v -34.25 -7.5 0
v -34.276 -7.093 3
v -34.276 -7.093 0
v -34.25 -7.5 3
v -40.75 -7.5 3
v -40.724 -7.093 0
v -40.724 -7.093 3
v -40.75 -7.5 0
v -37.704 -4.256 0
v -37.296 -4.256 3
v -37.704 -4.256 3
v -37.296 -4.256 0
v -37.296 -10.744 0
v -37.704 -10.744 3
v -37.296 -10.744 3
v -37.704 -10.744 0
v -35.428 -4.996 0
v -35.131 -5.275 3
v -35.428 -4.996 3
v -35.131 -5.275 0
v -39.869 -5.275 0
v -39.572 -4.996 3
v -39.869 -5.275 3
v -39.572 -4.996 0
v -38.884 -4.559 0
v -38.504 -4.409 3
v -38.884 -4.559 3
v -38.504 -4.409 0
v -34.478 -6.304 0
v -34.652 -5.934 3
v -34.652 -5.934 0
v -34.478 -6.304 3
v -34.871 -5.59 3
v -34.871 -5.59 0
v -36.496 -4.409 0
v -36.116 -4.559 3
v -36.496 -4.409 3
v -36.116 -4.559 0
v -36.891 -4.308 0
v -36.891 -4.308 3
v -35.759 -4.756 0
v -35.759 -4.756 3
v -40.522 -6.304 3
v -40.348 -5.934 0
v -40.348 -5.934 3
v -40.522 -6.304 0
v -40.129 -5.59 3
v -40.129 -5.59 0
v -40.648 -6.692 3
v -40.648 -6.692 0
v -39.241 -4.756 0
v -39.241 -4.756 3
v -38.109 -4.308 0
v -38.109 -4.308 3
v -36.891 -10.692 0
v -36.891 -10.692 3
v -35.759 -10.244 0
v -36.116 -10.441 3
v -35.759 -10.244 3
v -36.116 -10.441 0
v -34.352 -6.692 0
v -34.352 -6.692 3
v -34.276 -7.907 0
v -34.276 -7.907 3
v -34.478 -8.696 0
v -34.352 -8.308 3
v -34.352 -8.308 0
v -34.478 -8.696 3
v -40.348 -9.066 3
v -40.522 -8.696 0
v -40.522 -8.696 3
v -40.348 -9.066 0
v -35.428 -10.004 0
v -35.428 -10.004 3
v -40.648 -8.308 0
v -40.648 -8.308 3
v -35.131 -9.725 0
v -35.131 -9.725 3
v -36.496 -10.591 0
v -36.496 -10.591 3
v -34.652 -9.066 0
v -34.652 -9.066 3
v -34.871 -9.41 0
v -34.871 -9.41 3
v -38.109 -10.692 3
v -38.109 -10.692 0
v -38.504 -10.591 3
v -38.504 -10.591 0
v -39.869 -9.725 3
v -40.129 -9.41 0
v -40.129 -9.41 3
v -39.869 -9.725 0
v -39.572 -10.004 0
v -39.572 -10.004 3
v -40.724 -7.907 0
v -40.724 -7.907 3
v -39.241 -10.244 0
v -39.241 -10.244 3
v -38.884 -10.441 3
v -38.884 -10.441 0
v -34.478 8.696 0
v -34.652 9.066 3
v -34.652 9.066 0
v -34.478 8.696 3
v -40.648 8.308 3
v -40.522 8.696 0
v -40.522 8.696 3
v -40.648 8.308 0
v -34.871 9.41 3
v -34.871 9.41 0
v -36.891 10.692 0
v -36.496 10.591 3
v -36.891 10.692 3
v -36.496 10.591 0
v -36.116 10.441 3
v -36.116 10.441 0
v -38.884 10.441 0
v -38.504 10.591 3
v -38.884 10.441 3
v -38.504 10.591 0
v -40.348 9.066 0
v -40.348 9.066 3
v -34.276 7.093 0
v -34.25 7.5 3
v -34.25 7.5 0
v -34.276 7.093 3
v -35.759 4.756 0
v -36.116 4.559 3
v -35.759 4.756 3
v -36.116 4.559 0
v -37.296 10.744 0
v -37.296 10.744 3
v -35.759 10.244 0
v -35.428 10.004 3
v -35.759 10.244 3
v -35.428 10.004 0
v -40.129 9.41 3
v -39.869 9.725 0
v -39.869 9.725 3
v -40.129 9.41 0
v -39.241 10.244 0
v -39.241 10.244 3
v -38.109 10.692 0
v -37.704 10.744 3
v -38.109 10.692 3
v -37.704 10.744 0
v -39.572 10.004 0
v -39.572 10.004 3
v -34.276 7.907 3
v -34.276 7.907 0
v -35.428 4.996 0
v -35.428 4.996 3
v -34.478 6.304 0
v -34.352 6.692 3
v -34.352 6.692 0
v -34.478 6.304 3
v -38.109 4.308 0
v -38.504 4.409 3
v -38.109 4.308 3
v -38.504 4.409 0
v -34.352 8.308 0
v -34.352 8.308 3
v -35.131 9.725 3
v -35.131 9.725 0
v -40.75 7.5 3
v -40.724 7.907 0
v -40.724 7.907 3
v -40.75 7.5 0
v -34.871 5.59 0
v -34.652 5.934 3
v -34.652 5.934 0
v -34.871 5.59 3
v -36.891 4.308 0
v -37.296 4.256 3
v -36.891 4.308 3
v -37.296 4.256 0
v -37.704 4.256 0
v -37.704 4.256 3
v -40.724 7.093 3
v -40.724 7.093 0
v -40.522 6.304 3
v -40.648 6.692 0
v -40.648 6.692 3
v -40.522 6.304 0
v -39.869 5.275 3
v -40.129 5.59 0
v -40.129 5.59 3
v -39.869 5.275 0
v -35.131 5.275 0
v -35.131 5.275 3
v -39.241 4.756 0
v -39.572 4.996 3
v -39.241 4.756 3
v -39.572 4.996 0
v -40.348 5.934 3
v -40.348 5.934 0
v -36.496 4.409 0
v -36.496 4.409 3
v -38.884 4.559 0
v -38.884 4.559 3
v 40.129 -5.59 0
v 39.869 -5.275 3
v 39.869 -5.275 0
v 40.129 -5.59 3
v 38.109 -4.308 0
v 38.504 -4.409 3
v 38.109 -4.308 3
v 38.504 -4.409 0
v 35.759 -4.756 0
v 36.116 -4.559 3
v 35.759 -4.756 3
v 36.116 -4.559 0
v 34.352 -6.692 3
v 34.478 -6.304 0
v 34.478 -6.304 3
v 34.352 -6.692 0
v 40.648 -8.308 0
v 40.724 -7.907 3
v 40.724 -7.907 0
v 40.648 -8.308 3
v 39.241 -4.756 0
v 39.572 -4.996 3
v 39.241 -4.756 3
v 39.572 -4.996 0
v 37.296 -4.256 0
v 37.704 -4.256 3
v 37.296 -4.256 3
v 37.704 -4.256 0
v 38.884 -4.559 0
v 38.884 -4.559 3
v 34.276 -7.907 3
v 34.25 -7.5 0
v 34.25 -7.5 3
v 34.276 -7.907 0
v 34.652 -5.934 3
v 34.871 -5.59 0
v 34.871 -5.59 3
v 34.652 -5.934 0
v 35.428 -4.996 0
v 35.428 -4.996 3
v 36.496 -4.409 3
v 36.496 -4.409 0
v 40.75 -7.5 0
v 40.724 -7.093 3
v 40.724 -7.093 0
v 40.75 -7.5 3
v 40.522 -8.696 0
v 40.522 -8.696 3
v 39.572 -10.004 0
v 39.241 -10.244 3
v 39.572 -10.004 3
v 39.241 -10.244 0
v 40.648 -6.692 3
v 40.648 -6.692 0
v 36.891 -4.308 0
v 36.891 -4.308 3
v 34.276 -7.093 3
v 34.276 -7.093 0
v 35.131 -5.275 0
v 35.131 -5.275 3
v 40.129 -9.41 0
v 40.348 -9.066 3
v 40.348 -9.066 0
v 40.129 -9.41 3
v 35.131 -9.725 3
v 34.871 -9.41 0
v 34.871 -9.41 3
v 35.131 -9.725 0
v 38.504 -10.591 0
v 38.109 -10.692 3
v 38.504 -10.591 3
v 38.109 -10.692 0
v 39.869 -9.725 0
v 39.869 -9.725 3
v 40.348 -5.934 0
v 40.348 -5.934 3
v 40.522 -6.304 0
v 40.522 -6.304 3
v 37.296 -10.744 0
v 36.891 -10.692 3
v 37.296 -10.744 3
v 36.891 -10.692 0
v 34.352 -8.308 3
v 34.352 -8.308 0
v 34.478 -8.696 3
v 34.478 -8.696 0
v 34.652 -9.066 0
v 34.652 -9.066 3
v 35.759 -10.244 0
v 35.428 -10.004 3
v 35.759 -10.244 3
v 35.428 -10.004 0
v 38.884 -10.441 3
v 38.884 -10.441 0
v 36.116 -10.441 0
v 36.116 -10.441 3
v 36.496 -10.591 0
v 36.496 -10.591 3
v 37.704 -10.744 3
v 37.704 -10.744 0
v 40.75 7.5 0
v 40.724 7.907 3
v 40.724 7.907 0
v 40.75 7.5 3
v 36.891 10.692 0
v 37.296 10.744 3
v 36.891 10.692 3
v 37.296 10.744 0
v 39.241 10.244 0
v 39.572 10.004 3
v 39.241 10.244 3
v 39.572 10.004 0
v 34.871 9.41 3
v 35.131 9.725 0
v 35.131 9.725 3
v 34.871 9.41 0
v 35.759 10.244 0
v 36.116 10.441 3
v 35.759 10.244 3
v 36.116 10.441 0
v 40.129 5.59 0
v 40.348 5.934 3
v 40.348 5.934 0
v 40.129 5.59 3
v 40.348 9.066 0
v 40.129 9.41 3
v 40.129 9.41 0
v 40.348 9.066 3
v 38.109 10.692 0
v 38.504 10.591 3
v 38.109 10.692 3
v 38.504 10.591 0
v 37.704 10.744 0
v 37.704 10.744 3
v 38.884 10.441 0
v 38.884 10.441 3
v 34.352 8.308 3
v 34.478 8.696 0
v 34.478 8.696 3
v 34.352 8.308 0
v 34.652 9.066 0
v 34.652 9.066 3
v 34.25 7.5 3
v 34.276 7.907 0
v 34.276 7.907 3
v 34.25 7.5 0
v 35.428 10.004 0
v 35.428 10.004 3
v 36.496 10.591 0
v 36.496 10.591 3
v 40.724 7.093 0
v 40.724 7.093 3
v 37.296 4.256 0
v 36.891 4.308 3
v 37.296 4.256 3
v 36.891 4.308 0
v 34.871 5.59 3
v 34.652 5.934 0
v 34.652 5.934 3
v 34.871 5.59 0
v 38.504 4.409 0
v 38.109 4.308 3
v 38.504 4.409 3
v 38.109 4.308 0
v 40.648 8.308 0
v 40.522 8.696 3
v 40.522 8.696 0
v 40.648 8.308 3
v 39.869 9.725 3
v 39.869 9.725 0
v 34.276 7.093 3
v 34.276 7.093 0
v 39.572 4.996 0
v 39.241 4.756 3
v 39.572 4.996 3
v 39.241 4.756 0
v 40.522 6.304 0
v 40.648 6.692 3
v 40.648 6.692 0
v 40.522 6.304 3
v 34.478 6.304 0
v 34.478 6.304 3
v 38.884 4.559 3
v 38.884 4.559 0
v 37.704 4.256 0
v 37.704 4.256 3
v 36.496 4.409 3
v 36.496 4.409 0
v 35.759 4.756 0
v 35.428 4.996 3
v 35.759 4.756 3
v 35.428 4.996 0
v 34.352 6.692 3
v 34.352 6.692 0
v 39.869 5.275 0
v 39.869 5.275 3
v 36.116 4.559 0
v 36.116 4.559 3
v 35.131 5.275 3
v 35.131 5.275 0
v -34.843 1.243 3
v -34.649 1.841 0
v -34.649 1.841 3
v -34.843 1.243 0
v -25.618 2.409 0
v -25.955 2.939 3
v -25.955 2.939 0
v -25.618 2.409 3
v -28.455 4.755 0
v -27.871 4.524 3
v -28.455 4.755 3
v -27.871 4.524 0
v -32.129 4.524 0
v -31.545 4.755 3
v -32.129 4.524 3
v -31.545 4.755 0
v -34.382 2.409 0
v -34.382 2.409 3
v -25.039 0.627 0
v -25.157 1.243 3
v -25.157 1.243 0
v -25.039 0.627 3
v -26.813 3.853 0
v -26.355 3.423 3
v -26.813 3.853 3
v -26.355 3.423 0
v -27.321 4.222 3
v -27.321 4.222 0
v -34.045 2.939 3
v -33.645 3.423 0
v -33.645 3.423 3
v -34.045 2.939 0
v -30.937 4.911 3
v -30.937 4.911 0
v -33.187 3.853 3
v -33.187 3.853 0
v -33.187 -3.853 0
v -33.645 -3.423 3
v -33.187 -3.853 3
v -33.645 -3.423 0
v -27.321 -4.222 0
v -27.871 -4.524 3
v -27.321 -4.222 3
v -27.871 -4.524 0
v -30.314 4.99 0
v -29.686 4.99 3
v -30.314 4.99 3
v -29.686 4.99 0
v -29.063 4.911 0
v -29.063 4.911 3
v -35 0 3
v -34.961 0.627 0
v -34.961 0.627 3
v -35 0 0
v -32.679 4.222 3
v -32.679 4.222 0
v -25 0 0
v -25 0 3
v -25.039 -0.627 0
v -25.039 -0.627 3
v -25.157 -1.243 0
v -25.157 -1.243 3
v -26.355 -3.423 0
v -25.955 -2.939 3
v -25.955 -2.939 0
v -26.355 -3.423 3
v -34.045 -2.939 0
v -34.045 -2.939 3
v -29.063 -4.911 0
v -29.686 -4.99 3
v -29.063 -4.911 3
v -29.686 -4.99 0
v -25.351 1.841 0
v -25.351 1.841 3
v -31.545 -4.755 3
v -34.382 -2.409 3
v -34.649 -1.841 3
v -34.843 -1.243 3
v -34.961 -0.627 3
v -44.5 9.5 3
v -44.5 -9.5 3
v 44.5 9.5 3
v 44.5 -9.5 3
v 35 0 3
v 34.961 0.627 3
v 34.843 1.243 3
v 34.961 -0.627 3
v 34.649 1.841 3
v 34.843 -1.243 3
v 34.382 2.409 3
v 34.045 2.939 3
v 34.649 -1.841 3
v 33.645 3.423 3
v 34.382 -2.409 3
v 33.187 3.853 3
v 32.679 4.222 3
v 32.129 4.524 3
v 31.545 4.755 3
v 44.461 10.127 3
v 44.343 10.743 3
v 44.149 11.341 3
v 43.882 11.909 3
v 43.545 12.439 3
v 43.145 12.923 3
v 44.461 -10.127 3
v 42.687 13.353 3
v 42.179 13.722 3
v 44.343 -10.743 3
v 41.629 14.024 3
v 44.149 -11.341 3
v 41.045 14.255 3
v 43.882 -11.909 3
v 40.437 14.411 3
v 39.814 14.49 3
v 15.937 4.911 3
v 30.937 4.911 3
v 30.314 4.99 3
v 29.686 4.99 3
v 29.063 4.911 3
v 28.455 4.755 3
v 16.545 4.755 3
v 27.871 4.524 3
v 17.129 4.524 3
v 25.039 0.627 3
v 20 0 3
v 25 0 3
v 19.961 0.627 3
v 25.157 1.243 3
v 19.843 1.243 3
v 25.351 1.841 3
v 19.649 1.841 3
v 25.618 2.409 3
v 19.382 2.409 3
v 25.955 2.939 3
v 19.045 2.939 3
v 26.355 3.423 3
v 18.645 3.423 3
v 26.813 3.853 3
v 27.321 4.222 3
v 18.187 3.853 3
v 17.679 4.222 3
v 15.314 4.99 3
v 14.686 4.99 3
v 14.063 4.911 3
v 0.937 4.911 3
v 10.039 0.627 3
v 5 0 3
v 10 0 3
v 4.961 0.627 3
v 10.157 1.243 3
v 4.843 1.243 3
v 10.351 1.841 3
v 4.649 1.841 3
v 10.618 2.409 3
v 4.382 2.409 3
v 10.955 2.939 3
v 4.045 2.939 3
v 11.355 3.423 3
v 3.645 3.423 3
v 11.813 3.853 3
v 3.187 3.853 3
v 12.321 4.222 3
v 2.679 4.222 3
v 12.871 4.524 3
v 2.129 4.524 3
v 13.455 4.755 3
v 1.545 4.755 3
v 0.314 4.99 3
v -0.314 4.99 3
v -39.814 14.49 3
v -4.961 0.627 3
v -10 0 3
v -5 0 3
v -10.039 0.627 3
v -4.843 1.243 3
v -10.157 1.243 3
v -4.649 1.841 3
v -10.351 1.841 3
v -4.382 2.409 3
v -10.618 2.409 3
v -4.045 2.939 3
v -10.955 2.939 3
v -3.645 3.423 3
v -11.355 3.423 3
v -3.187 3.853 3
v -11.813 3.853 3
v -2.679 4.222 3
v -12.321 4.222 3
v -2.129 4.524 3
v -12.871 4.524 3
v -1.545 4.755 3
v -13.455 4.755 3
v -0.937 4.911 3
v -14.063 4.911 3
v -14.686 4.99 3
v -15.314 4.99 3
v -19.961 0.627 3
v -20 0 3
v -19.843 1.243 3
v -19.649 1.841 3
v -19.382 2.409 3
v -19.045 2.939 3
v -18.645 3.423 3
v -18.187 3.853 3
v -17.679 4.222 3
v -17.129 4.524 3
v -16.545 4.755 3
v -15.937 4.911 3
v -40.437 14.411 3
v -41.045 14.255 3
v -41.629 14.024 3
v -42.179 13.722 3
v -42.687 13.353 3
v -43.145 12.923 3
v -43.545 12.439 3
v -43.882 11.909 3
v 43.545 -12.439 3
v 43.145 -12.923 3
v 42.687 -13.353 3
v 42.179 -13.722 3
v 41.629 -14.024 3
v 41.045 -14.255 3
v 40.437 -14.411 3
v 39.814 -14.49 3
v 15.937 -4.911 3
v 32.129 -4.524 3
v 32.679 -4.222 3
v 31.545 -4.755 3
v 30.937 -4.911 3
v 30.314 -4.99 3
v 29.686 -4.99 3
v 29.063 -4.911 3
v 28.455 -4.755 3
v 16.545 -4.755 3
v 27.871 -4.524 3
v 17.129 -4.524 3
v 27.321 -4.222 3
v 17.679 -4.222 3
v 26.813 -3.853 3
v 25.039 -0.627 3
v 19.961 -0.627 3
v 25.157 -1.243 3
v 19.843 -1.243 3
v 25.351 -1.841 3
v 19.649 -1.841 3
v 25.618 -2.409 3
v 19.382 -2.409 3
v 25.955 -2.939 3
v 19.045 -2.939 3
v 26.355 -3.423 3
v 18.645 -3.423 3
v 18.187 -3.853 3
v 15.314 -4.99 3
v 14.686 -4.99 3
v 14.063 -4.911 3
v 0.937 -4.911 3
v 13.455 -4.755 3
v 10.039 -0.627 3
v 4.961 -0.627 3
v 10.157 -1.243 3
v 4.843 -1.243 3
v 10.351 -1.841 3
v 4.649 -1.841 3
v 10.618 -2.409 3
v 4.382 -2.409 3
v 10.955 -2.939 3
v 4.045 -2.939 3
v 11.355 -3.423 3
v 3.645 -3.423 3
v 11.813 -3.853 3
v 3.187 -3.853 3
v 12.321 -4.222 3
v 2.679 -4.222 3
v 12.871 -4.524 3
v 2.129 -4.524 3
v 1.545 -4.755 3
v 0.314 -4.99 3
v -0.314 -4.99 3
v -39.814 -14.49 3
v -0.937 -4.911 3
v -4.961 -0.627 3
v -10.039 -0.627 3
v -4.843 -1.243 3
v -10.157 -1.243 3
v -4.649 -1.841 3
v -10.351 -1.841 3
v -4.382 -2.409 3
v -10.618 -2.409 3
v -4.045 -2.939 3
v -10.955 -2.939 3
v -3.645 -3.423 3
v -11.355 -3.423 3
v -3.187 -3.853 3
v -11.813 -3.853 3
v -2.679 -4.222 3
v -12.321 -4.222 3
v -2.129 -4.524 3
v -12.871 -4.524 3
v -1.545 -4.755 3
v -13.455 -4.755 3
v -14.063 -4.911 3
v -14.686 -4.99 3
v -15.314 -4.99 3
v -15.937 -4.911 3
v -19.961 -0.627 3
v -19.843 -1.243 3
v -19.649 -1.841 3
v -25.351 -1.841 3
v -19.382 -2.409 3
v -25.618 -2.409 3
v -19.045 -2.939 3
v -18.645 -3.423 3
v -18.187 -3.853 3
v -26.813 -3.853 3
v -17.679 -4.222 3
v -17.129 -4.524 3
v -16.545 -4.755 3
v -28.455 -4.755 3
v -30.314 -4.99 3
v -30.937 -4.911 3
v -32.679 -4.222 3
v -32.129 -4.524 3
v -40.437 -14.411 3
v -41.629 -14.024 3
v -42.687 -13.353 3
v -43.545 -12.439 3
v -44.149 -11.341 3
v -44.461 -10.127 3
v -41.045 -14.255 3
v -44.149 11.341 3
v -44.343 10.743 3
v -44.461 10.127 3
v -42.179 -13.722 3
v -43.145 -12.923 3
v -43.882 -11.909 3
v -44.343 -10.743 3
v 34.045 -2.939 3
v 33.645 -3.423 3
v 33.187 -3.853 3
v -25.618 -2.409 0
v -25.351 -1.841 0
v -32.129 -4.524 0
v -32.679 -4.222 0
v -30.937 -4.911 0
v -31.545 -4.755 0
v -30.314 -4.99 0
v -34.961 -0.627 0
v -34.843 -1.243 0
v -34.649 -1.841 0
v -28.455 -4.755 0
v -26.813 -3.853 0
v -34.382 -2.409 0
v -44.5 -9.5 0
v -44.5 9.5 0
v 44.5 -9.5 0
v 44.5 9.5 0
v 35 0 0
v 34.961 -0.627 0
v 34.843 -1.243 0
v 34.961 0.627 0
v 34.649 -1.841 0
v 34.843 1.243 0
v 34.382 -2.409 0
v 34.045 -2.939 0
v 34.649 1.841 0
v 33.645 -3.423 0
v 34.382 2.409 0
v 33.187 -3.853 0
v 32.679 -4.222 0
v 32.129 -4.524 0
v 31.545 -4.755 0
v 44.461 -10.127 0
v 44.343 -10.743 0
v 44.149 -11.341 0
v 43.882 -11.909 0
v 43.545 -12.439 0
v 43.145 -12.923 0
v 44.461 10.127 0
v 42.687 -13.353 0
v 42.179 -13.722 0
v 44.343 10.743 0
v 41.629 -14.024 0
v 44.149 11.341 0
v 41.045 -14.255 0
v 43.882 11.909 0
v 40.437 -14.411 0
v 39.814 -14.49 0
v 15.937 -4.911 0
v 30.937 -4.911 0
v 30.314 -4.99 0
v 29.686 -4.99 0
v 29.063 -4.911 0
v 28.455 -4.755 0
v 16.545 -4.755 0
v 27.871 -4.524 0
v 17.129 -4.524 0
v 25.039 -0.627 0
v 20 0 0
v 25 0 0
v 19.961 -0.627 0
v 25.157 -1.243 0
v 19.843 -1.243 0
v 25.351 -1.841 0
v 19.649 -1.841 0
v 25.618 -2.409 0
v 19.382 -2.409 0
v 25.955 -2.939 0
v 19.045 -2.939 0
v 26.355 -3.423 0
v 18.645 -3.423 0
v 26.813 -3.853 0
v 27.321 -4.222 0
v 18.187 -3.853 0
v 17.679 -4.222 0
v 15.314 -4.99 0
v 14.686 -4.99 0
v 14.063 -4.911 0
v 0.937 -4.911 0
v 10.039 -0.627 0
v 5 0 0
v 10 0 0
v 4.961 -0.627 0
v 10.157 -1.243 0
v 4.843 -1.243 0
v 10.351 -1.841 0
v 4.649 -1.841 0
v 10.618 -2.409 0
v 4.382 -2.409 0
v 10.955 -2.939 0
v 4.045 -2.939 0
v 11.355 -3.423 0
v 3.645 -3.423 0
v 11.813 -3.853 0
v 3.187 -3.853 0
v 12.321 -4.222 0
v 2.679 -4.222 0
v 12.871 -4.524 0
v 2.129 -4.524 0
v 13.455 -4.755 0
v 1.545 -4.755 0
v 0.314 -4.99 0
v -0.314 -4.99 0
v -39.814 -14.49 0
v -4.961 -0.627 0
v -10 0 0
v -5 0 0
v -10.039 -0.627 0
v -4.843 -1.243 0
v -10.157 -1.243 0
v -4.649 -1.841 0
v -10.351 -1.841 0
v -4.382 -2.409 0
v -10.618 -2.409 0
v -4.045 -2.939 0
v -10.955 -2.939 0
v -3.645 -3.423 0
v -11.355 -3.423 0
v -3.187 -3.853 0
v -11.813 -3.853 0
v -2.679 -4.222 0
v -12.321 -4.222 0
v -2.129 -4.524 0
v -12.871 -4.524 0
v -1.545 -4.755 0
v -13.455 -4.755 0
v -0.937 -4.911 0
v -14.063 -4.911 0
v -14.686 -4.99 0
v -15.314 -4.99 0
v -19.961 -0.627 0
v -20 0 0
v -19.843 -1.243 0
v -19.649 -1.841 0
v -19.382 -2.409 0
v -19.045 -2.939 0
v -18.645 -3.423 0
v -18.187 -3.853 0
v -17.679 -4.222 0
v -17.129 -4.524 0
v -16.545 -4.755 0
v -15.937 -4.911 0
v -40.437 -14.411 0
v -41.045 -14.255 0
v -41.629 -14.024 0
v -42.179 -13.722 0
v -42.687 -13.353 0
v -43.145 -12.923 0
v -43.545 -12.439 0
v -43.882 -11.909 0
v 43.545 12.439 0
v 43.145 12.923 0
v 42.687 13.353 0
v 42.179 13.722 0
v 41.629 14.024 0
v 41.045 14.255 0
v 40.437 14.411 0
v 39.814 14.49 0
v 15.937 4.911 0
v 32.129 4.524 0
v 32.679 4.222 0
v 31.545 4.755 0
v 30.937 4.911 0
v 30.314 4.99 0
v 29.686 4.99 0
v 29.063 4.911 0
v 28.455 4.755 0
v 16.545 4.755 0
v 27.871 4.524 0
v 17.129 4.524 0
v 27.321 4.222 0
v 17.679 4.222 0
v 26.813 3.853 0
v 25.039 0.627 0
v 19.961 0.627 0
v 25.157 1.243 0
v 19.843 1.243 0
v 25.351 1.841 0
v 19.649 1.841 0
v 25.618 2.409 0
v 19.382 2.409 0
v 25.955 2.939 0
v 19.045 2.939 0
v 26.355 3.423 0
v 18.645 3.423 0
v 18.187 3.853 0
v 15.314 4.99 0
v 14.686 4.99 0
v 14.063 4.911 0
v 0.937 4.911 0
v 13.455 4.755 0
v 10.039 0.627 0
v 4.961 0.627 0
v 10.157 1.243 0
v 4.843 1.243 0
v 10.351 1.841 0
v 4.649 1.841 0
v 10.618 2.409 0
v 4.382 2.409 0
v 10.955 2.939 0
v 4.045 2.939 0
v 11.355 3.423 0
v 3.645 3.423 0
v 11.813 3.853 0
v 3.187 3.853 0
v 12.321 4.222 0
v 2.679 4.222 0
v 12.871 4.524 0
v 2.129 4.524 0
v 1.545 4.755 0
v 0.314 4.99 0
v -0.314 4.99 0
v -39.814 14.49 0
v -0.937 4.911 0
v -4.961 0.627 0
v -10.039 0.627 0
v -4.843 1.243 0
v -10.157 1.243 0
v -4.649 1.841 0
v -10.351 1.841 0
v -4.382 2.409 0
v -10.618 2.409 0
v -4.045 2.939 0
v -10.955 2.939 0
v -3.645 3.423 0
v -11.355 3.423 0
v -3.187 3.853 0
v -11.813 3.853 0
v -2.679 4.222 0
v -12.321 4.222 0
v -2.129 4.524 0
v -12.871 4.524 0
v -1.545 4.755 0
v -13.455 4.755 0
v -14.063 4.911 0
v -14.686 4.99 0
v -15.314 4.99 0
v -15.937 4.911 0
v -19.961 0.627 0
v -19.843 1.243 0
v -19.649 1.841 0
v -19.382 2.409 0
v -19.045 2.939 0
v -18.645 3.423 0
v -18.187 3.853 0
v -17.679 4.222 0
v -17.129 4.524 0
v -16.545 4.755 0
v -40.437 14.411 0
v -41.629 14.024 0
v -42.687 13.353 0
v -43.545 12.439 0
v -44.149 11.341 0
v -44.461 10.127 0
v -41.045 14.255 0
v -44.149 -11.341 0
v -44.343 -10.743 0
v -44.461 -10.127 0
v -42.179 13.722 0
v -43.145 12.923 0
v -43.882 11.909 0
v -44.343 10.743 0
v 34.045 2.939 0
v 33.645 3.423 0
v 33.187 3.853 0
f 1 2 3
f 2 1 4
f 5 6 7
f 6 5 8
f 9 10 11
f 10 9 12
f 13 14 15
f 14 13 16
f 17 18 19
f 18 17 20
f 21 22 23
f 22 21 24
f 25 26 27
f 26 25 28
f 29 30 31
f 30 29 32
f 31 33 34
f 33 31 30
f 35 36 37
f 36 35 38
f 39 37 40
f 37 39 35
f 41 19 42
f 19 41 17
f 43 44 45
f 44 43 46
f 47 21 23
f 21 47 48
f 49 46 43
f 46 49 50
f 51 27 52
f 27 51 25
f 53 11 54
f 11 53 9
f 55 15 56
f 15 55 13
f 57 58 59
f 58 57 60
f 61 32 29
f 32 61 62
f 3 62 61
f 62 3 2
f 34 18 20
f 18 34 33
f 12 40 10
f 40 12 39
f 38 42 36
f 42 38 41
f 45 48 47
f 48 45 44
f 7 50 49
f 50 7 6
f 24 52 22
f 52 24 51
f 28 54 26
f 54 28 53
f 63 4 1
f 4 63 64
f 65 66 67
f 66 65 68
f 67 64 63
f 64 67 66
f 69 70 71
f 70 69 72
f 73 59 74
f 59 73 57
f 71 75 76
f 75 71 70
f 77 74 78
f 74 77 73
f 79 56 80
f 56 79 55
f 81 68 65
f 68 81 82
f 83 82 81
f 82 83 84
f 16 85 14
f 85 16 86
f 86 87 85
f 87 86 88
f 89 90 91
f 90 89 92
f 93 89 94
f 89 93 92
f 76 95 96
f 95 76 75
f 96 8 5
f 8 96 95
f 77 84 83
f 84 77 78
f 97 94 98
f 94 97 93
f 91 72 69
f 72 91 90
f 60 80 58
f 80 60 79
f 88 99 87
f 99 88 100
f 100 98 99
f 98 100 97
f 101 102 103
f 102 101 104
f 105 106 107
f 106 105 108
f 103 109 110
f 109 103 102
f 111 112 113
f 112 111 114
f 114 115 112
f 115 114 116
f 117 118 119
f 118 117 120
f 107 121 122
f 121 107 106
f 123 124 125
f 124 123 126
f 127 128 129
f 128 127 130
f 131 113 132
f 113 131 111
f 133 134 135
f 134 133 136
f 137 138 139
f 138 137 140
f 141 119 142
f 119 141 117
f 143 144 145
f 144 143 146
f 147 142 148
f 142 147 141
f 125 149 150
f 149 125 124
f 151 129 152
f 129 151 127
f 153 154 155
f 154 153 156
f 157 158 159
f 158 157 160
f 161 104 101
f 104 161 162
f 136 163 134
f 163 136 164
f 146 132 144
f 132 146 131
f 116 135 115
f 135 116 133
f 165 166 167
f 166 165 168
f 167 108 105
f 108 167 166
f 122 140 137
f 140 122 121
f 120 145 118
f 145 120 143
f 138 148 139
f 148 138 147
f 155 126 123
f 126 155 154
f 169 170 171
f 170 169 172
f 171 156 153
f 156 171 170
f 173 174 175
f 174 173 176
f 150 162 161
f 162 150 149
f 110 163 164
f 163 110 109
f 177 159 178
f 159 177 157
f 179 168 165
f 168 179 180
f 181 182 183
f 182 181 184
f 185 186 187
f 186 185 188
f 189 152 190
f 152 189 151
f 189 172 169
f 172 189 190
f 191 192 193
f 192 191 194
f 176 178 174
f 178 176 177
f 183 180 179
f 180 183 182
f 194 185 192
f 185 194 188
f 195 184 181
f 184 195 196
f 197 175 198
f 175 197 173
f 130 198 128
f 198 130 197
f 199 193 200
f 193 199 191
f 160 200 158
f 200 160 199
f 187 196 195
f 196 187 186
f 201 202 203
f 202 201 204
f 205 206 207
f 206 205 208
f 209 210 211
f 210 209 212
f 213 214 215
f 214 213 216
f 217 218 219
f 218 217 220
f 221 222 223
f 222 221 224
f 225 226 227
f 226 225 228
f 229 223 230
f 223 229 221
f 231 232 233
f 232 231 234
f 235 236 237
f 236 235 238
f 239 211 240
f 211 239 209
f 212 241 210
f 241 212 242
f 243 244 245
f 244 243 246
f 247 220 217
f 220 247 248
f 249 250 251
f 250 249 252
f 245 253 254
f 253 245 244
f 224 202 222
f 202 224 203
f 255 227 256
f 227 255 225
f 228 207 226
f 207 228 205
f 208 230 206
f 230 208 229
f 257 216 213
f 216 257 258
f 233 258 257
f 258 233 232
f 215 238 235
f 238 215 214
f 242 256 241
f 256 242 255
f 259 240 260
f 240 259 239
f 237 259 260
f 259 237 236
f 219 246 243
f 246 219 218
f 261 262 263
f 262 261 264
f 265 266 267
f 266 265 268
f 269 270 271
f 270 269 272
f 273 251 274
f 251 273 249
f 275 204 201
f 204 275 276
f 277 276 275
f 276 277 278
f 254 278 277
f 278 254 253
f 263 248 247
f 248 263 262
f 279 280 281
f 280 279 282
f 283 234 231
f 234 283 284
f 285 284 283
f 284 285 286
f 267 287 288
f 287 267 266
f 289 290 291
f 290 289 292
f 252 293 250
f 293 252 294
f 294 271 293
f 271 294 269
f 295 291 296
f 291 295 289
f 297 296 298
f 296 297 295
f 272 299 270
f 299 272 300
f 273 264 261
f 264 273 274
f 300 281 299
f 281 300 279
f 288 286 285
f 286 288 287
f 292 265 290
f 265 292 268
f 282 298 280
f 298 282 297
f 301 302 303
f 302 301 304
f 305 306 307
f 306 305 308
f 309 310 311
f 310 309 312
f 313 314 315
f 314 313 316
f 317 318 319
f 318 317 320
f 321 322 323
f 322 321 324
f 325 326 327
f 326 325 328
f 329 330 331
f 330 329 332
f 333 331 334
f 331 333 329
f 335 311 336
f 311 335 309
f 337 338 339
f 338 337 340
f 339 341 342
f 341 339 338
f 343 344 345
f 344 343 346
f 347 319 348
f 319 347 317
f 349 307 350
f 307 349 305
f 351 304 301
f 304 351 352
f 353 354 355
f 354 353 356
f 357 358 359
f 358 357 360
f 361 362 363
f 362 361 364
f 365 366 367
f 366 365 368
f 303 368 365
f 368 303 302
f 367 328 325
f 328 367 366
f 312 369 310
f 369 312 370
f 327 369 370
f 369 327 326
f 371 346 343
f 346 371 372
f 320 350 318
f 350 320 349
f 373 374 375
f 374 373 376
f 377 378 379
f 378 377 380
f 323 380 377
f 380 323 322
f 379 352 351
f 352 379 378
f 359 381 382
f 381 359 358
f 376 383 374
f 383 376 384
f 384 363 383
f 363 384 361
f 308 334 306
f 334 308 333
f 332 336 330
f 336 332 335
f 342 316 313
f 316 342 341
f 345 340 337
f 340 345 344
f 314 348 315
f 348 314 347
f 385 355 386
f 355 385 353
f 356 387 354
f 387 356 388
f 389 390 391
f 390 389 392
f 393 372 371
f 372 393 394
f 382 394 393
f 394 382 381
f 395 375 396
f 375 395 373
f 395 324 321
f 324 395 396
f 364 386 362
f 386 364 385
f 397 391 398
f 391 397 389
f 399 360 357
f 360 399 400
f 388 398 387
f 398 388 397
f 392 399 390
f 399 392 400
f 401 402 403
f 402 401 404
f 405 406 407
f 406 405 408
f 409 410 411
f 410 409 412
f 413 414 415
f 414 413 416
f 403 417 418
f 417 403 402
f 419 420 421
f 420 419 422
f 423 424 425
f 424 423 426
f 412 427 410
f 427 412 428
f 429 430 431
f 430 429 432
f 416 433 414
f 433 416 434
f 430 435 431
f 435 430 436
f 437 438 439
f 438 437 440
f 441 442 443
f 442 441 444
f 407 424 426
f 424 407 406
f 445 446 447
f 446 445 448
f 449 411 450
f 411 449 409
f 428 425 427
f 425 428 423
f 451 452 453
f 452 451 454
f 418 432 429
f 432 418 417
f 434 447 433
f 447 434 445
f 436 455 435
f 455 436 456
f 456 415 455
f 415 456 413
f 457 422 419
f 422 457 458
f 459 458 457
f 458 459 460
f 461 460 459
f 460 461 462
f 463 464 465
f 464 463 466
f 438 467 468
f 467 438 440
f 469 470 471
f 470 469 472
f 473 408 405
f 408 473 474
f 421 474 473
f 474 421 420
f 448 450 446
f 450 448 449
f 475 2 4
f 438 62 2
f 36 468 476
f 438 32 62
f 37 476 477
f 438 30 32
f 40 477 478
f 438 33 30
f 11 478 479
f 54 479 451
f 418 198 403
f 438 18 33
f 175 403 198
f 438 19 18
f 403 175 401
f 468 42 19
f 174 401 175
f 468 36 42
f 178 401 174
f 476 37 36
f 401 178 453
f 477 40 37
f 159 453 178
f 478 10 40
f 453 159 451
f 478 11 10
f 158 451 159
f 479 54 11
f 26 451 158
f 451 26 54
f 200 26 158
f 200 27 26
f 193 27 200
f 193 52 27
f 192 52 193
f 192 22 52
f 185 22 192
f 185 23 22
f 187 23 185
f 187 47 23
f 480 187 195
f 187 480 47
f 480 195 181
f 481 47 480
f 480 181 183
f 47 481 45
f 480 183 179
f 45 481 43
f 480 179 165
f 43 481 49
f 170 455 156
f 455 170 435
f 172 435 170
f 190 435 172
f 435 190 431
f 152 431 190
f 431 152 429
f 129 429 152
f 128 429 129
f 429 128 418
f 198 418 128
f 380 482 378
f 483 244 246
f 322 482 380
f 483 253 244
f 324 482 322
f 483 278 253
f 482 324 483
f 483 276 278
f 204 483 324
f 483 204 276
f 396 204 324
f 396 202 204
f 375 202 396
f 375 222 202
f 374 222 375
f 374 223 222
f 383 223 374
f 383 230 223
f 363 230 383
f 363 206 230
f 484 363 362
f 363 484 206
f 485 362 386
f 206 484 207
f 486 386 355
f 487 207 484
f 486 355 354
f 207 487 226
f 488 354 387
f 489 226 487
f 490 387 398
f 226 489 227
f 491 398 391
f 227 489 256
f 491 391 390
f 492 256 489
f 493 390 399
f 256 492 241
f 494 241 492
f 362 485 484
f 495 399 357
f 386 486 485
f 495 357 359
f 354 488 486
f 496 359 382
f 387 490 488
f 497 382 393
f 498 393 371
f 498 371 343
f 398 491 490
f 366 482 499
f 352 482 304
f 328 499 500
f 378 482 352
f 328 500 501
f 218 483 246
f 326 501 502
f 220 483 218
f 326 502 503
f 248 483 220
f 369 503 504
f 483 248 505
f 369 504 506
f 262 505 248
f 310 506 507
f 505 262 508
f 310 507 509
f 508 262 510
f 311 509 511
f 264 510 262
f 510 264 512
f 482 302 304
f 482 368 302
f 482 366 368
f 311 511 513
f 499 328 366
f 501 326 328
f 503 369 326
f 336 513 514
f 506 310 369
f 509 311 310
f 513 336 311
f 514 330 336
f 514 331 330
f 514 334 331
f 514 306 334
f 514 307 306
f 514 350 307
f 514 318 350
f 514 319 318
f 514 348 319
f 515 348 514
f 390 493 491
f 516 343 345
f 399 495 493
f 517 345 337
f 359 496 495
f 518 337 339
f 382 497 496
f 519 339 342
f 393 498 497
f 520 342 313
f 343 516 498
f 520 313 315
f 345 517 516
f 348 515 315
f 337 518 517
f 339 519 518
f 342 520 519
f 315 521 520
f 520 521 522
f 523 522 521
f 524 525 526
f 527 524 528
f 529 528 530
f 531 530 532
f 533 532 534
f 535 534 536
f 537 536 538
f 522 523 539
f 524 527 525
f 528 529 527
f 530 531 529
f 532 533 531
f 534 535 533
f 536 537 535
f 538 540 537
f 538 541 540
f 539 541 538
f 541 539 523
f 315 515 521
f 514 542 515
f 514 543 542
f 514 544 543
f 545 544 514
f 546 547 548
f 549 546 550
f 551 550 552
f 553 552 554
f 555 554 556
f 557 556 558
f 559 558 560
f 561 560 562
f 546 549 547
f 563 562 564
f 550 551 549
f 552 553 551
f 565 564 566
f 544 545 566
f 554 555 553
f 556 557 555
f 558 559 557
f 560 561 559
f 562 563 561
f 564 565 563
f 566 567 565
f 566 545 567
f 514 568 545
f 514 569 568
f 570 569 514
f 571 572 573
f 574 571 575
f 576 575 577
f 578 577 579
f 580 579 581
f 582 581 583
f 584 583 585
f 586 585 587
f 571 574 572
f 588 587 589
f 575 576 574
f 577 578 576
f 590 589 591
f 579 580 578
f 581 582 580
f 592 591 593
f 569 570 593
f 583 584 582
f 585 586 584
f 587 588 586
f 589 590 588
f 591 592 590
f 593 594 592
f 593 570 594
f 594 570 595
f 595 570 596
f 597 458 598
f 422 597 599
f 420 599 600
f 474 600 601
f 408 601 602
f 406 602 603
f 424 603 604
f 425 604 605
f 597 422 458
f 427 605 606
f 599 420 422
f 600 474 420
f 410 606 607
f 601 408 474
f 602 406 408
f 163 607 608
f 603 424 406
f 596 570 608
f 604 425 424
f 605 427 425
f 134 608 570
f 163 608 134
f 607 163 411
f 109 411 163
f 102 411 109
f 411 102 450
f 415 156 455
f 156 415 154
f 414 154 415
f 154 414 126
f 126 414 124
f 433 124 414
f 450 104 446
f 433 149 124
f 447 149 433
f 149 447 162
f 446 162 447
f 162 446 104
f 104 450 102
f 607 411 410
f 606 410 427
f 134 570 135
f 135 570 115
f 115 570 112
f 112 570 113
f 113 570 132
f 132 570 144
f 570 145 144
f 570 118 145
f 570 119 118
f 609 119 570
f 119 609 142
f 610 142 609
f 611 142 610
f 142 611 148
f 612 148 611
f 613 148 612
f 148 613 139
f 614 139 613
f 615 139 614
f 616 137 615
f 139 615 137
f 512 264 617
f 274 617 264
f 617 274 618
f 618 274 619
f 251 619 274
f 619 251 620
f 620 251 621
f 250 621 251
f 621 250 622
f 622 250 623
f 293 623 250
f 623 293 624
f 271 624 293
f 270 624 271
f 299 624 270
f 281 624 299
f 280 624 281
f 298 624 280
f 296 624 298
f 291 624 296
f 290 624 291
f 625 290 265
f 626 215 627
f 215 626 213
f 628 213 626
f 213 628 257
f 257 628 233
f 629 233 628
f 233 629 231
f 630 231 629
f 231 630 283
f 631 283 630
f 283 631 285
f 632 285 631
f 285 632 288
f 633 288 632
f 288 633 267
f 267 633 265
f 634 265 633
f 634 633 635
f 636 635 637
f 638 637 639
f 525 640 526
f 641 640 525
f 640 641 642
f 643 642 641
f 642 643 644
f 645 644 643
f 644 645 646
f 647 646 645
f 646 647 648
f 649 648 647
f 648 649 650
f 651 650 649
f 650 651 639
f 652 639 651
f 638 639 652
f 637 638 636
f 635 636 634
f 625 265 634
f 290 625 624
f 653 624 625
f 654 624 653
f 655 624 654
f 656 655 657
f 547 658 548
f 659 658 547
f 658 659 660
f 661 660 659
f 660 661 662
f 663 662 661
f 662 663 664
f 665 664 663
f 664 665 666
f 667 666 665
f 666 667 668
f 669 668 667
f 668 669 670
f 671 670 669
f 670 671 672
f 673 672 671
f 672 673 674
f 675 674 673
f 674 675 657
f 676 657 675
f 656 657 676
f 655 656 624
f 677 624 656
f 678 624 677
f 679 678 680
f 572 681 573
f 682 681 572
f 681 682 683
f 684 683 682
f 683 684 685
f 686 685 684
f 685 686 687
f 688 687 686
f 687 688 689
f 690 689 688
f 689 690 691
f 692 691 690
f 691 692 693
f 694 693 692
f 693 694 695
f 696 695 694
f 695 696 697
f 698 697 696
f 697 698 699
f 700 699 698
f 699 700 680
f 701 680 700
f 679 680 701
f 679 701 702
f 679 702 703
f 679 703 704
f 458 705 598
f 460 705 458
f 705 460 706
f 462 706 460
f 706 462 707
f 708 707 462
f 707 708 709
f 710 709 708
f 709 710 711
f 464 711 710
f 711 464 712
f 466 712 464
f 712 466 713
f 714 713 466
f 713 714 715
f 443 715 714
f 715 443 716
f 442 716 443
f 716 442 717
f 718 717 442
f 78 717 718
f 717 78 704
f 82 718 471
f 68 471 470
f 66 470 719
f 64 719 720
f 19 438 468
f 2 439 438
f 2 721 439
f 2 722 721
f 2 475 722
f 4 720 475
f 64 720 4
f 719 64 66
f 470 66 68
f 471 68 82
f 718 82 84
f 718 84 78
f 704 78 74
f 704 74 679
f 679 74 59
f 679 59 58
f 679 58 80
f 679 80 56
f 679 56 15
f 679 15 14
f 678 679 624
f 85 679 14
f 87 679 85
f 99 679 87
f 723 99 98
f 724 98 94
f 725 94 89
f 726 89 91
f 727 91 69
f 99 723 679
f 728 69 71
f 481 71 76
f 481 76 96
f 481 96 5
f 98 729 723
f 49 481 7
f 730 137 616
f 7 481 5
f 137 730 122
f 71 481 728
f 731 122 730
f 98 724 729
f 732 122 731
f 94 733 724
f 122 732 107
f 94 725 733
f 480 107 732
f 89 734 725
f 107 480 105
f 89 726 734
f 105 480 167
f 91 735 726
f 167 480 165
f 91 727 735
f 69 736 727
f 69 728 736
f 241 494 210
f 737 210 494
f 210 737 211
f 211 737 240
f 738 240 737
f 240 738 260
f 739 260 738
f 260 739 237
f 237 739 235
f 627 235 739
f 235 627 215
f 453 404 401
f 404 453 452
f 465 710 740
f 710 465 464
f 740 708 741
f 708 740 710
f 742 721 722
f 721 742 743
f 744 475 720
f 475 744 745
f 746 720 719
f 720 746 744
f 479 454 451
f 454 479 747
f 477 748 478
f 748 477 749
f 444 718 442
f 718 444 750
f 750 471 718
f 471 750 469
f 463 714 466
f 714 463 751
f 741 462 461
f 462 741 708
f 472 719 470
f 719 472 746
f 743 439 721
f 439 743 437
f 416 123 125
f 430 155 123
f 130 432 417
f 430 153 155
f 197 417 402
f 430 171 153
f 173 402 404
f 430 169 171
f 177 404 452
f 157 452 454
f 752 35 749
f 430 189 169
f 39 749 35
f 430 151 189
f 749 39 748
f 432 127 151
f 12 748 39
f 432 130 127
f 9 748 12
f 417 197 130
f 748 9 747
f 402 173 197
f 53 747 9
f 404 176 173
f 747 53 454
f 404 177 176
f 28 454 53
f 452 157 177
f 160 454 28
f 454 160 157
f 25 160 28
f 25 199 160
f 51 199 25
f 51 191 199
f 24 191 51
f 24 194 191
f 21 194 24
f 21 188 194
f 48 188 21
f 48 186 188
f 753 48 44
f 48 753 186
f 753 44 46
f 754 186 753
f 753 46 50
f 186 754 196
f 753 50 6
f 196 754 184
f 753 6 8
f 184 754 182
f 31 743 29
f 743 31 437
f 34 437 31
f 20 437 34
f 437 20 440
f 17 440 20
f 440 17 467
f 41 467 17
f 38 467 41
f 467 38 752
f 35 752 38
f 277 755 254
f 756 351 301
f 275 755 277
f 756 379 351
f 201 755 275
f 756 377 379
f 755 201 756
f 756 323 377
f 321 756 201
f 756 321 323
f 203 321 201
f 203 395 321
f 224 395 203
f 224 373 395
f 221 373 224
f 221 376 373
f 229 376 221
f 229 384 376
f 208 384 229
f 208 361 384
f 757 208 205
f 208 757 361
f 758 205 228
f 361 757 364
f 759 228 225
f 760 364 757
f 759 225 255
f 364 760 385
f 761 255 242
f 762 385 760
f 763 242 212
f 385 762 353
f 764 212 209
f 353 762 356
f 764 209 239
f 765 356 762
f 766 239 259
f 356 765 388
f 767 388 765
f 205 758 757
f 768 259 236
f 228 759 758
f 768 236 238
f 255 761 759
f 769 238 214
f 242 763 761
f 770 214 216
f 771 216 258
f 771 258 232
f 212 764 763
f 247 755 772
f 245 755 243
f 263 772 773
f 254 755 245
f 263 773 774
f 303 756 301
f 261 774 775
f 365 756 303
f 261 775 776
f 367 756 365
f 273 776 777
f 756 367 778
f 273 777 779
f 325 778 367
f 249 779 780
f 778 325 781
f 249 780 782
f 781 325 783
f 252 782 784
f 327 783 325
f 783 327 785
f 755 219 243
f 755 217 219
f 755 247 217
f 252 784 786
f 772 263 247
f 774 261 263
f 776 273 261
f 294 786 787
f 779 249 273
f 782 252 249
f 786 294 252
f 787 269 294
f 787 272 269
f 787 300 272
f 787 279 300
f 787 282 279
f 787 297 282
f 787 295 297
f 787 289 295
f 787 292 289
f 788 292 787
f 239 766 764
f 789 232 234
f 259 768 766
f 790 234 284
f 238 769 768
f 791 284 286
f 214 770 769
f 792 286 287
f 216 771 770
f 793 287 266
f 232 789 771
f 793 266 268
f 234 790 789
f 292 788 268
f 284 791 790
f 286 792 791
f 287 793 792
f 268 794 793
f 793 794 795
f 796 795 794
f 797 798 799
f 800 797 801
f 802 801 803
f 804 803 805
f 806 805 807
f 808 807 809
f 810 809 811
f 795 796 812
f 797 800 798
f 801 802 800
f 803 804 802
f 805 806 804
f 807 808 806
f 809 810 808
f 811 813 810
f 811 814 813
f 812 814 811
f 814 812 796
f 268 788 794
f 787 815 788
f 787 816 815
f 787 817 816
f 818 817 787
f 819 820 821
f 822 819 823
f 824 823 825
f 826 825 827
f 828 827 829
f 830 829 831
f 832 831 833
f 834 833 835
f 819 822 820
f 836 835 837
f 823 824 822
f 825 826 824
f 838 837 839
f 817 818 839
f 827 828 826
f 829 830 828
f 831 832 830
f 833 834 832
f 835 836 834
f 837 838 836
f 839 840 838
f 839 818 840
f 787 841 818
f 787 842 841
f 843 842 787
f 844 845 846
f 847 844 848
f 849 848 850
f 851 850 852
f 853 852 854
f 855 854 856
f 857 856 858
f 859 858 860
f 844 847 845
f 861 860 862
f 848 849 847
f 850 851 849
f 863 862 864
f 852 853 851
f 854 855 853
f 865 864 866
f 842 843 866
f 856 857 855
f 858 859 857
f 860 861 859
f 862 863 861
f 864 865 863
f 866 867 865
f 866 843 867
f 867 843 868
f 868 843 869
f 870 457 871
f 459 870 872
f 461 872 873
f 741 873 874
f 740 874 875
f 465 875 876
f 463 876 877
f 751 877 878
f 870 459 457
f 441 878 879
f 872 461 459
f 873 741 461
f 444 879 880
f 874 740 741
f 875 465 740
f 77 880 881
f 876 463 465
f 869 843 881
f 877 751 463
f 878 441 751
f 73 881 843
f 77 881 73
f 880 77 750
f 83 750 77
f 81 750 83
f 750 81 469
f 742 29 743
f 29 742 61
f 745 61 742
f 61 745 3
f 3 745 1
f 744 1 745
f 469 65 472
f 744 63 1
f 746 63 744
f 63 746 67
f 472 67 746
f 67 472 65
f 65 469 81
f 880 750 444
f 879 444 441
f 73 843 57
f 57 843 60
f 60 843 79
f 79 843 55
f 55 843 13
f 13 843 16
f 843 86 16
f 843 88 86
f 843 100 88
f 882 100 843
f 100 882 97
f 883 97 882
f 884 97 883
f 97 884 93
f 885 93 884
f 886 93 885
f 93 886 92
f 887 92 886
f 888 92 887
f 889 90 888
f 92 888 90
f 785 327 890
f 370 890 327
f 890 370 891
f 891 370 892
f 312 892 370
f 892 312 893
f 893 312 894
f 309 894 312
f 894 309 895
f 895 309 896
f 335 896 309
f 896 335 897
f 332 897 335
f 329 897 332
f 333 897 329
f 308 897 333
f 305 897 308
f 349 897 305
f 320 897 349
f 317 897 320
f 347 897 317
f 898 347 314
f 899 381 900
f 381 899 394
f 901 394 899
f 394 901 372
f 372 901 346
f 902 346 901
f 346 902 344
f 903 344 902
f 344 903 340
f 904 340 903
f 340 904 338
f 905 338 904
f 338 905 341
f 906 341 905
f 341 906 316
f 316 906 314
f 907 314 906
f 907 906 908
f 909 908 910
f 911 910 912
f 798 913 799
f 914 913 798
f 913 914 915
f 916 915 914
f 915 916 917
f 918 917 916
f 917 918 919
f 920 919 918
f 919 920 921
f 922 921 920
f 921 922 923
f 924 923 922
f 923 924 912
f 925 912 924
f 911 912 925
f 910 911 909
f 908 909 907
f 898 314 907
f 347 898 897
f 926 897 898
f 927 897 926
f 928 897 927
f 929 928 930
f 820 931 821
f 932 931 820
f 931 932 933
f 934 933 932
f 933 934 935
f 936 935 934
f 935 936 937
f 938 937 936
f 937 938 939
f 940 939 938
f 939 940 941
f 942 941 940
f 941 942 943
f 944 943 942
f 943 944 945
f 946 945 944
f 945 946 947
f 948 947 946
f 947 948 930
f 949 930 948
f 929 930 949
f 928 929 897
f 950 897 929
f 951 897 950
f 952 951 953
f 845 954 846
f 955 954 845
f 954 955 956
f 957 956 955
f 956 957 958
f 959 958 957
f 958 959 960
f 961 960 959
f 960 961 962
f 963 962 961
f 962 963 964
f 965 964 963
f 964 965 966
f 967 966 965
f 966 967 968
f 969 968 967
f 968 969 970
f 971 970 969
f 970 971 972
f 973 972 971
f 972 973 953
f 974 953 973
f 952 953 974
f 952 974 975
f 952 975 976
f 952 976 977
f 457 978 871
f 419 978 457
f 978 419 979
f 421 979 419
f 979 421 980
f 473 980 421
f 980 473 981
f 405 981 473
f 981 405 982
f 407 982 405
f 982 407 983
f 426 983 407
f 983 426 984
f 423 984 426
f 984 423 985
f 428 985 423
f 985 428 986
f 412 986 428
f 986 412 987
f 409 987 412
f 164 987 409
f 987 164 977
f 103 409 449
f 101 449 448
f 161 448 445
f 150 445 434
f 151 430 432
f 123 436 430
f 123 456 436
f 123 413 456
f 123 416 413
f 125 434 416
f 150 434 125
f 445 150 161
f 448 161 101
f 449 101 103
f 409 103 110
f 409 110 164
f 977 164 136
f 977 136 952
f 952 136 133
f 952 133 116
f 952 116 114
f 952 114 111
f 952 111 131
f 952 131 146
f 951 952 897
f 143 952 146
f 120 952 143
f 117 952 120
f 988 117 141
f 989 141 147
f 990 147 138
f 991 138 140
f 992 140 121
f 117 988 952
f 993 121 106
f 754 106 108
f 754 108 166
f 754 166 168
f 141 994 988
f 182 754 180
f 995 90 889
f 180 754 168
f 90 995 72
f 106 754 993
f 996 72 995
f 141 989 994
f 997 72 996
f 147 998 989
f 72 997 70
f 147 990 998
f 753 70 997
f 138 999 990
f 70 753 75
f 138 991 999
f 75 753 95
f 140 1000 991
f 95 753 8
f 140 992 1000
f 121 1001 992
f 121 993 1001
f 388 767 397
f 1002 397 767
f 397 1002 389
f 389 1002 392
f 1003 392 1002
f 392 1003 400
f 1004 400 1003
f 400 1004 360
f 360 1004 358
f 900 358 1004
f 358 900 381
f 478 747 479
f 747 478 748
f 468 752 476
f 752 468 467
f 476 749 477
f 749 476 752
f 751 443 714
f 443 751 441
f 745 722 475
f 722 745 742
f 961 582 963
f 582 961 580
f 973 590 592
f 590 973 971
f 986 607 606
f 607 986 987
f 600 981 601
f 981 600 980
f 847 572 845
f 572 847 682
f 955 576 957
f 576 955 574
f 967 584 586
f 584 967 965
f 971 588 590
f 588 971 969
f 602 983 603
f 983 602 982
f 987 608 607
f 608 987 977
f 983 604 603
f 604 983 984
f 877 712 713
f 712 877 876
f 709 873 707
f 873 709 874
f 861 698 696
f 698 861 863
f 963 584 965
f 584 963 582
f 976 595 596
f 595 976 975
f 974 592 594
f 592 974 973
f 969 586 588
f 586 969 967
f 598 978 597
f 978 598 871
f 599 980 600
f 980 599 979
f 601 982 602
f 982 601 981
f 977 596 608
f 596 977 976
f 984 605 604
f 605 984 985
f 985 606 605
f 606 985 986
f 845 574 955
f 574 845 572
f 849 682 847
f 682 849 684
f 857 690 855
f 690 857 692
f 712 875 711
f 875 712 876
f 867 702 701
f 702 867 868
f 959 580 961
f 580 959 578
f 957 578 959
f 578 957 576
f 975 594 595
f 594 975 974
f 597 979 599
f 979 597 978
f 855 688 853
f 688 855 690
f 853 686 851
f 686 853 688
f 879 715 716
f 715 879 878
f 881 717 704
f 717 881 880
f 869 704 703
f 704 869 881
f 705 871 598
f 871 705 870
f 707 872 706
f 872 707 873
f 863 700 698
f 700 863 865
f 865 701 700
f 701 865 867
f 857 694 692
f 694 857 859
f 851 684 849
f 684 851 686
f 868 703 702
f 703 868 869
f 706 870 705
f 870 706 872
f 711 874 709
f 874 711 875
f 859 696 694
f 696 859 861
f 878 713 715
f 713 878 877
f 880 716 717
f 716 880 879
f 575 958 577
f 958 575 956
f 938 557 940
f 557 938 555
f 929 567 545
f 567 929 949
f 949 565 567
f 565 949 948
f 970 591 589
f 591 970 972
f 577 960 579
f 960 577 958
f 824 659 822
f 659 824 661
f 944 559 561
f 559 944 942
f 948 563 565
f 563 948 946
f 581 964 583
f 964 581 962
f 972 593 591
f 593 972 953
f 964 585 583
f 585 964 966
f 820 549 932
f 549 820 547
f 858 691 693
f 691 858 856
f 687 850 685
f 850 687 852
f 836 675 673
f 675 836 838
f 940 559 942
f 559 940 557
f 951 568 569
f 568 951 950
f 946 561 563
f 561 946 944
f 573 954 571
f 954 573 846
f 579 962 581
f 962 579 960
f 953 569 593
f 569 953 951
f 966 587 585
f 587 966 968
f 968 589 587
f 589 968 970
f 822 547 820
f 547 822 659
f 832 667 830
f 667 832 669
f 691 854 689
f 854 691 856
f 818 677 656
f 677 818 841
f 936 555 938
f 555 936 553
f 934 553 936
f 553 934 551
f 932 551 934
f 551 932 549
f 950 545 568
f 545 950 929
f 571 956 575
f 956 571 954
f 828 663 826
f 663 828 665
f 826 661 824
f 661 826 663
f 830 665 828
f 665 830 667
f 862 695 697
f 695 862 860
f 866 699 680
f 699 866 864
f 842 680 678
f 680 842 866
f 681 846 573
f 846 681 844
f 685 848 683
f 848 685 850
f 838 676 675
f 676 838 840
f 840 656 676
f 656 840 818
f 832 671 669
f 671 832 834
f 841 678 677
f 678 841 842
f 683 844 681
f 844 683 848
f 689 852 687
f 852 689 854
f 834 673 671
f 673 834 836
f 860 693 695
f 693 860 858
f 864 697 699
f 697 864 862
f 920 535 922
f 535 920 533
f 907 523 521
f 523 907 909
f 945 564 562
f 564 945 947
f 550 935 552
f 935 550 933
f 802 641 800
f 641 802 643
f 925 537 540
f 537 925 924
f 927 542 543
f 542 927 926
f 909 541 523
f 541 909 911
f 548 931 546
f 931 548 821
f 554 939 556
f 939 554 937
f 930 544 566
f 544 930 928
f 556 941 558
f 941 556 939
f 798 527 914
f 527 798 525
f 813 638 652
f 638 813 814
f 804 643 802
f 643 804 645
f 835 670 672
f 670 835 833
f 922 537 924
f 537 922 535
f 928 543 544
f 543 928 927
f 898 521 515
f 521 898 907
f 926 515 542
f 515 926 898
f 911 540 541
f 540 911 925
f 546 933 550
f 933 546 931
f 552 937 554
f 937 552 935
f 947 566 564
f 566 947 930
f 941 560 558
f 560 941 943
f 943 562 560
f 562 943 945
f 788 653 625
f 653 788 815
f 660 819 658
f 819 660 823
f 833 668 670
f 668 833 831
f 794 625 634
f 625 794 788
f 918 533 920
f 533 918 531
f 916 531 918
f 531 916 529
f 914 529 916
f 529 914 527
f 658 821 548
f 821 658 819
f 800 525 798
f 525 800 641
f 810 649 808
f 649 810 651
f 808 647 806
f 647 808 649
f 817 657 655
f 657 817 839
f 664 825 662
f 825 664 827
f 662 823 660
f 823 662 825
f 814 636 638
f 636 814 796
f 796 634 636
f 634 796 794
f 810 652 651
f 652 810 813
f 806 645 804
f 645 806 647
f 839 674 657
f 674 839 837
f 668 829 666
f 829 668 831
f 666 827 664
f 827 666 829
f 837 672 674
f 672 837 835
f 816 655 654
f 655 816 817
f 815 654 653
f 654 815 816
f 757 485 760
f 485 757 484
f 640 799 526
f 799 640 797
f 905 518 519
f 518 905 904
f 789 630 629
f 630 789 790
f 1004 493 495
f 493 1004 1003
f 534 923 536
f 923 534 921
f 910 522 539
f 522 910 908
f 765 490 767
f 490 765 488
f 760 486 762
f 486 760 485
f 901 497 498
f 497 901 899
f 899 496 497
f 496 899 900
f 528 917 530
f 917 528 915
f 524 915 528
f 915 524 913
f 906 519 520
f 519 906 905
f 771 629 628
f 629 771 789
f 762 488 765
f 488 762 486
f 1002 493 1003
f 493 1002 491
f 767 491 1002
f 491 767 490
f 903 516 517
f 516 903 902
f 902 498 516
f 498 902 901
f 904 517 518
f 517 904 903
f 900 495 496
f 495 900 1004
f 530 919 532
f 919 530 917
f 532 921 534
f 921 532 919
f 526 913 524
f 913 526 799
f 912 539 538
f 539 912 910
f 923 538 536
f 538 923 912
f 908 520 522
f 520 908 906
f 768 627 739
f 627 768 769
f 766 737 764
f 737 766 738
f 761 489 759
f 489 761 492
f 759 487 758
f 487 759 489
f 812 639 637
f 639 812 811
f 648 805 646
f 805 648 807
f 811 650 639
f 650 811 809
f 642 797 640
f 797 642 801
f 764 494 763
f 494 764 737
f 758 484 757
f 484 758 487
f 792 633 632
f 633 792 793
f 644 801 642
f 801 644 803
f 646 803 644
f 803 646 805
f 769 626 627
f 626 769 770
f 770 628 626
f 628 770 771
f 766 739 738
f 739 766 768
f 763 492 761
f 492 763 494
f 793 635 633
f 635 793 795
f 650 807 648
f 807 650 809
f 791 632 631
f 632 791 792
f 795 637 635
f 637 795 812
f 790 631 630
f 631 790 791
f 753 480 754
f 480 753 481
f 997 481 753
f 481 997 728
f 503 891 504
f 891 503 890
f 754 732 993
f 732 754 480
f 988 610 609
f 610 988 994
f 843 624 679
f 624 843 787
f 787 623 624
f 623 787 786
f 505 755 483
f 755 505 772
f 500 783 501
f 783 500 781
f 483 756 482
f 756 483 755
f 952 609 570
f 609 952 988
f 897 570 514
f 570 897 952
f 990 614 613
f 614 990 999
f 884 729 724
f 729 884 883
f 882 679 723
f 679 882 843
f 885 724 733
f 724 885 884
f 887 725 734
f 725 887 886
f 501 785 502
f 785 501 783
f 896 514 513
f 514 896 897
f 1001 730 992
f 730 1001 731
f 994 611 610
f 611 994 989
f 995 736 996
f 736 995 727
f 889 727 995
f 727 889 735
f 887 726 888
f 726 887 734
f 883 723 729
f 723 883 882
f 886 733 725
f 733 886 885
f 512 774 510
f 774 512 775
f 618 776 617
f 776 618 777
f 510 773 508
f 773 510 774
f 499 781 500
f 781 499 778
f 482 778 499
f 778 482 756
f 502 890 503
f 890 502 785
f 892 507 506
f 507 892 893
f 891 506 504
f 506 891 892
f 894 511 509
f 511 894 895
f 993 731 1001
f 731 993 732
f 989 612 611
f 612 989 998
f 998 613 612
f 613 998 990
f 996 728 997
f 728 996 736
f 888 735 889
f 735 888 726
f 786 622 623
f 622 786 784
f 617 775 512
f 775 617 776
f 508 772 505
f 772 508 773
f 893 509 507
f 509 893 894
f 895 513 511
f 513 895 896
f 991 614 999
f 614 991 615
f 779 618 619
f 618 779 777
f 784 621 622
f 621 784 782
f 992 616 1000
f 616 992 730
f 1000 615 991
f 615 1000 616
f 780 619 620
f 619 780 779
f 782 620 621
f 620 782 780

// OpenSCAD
$fn = 50;


difference() {
	union() {
		hull() {
			translate(v = [-39.5000000000, 9.5000000000, 0]) {
				cylinder(h = 3, r = 5);
			}
			translate(v = [39.5000000000, 9.5000000000, 0]) {
				cylinder(h = 3, r = 5);
			}
			translate(v = [-39.5000000000, -9.5000000000, 0]) {
				cylinder(h = 3, r = 5);
			}
			translate(v = [39.5000000000, -9.5000000000, 0]) {
				cylinder(h = 3, r = 5);
			}
		}
	}
	union() {
		#translate(v = [-37.5000000000, -7.5000000000, -100.0000000000]) {
			cylinder(h = 200, r = 3.2500000000);
		}
		#translate(v = [-37.5000000000, 7.5000000000, -100.0000000000]) {
			cylinder(h = 200, r = 3.2500000000);
		}
		#translate(v = [37.5000000000, -7.5000000000, -100.0000000000]) {
			cylinder(h = 200, r = 3.2500000000);
		}
		#translate(v = [37.5000000000, 7.5000000000, -100.0000000000]) {
			cylinder(h = 200, r = 3.2500000000);
		}
		#translate(v = [-30.0000000000, 0, 0]) {
			cylinder(h = 3, r = 5.0000000000);
		}
		#translate(v = [-15.0000000000, 0, 0]) {
			cylinder(h = 3, r = 5.0000000000);
		}
		#cylinder(h = 3, r = 5.0000000000);
		#translate(v = [15.0000000000, 0, 0]) {
			cylinder(h = 3, r = 5.0000000000);
		}
		#translate(v = [30.0000000000, 0, 0]) {
			cylinder(h = 3, r = 5.0000000000);
		}
	}
}
